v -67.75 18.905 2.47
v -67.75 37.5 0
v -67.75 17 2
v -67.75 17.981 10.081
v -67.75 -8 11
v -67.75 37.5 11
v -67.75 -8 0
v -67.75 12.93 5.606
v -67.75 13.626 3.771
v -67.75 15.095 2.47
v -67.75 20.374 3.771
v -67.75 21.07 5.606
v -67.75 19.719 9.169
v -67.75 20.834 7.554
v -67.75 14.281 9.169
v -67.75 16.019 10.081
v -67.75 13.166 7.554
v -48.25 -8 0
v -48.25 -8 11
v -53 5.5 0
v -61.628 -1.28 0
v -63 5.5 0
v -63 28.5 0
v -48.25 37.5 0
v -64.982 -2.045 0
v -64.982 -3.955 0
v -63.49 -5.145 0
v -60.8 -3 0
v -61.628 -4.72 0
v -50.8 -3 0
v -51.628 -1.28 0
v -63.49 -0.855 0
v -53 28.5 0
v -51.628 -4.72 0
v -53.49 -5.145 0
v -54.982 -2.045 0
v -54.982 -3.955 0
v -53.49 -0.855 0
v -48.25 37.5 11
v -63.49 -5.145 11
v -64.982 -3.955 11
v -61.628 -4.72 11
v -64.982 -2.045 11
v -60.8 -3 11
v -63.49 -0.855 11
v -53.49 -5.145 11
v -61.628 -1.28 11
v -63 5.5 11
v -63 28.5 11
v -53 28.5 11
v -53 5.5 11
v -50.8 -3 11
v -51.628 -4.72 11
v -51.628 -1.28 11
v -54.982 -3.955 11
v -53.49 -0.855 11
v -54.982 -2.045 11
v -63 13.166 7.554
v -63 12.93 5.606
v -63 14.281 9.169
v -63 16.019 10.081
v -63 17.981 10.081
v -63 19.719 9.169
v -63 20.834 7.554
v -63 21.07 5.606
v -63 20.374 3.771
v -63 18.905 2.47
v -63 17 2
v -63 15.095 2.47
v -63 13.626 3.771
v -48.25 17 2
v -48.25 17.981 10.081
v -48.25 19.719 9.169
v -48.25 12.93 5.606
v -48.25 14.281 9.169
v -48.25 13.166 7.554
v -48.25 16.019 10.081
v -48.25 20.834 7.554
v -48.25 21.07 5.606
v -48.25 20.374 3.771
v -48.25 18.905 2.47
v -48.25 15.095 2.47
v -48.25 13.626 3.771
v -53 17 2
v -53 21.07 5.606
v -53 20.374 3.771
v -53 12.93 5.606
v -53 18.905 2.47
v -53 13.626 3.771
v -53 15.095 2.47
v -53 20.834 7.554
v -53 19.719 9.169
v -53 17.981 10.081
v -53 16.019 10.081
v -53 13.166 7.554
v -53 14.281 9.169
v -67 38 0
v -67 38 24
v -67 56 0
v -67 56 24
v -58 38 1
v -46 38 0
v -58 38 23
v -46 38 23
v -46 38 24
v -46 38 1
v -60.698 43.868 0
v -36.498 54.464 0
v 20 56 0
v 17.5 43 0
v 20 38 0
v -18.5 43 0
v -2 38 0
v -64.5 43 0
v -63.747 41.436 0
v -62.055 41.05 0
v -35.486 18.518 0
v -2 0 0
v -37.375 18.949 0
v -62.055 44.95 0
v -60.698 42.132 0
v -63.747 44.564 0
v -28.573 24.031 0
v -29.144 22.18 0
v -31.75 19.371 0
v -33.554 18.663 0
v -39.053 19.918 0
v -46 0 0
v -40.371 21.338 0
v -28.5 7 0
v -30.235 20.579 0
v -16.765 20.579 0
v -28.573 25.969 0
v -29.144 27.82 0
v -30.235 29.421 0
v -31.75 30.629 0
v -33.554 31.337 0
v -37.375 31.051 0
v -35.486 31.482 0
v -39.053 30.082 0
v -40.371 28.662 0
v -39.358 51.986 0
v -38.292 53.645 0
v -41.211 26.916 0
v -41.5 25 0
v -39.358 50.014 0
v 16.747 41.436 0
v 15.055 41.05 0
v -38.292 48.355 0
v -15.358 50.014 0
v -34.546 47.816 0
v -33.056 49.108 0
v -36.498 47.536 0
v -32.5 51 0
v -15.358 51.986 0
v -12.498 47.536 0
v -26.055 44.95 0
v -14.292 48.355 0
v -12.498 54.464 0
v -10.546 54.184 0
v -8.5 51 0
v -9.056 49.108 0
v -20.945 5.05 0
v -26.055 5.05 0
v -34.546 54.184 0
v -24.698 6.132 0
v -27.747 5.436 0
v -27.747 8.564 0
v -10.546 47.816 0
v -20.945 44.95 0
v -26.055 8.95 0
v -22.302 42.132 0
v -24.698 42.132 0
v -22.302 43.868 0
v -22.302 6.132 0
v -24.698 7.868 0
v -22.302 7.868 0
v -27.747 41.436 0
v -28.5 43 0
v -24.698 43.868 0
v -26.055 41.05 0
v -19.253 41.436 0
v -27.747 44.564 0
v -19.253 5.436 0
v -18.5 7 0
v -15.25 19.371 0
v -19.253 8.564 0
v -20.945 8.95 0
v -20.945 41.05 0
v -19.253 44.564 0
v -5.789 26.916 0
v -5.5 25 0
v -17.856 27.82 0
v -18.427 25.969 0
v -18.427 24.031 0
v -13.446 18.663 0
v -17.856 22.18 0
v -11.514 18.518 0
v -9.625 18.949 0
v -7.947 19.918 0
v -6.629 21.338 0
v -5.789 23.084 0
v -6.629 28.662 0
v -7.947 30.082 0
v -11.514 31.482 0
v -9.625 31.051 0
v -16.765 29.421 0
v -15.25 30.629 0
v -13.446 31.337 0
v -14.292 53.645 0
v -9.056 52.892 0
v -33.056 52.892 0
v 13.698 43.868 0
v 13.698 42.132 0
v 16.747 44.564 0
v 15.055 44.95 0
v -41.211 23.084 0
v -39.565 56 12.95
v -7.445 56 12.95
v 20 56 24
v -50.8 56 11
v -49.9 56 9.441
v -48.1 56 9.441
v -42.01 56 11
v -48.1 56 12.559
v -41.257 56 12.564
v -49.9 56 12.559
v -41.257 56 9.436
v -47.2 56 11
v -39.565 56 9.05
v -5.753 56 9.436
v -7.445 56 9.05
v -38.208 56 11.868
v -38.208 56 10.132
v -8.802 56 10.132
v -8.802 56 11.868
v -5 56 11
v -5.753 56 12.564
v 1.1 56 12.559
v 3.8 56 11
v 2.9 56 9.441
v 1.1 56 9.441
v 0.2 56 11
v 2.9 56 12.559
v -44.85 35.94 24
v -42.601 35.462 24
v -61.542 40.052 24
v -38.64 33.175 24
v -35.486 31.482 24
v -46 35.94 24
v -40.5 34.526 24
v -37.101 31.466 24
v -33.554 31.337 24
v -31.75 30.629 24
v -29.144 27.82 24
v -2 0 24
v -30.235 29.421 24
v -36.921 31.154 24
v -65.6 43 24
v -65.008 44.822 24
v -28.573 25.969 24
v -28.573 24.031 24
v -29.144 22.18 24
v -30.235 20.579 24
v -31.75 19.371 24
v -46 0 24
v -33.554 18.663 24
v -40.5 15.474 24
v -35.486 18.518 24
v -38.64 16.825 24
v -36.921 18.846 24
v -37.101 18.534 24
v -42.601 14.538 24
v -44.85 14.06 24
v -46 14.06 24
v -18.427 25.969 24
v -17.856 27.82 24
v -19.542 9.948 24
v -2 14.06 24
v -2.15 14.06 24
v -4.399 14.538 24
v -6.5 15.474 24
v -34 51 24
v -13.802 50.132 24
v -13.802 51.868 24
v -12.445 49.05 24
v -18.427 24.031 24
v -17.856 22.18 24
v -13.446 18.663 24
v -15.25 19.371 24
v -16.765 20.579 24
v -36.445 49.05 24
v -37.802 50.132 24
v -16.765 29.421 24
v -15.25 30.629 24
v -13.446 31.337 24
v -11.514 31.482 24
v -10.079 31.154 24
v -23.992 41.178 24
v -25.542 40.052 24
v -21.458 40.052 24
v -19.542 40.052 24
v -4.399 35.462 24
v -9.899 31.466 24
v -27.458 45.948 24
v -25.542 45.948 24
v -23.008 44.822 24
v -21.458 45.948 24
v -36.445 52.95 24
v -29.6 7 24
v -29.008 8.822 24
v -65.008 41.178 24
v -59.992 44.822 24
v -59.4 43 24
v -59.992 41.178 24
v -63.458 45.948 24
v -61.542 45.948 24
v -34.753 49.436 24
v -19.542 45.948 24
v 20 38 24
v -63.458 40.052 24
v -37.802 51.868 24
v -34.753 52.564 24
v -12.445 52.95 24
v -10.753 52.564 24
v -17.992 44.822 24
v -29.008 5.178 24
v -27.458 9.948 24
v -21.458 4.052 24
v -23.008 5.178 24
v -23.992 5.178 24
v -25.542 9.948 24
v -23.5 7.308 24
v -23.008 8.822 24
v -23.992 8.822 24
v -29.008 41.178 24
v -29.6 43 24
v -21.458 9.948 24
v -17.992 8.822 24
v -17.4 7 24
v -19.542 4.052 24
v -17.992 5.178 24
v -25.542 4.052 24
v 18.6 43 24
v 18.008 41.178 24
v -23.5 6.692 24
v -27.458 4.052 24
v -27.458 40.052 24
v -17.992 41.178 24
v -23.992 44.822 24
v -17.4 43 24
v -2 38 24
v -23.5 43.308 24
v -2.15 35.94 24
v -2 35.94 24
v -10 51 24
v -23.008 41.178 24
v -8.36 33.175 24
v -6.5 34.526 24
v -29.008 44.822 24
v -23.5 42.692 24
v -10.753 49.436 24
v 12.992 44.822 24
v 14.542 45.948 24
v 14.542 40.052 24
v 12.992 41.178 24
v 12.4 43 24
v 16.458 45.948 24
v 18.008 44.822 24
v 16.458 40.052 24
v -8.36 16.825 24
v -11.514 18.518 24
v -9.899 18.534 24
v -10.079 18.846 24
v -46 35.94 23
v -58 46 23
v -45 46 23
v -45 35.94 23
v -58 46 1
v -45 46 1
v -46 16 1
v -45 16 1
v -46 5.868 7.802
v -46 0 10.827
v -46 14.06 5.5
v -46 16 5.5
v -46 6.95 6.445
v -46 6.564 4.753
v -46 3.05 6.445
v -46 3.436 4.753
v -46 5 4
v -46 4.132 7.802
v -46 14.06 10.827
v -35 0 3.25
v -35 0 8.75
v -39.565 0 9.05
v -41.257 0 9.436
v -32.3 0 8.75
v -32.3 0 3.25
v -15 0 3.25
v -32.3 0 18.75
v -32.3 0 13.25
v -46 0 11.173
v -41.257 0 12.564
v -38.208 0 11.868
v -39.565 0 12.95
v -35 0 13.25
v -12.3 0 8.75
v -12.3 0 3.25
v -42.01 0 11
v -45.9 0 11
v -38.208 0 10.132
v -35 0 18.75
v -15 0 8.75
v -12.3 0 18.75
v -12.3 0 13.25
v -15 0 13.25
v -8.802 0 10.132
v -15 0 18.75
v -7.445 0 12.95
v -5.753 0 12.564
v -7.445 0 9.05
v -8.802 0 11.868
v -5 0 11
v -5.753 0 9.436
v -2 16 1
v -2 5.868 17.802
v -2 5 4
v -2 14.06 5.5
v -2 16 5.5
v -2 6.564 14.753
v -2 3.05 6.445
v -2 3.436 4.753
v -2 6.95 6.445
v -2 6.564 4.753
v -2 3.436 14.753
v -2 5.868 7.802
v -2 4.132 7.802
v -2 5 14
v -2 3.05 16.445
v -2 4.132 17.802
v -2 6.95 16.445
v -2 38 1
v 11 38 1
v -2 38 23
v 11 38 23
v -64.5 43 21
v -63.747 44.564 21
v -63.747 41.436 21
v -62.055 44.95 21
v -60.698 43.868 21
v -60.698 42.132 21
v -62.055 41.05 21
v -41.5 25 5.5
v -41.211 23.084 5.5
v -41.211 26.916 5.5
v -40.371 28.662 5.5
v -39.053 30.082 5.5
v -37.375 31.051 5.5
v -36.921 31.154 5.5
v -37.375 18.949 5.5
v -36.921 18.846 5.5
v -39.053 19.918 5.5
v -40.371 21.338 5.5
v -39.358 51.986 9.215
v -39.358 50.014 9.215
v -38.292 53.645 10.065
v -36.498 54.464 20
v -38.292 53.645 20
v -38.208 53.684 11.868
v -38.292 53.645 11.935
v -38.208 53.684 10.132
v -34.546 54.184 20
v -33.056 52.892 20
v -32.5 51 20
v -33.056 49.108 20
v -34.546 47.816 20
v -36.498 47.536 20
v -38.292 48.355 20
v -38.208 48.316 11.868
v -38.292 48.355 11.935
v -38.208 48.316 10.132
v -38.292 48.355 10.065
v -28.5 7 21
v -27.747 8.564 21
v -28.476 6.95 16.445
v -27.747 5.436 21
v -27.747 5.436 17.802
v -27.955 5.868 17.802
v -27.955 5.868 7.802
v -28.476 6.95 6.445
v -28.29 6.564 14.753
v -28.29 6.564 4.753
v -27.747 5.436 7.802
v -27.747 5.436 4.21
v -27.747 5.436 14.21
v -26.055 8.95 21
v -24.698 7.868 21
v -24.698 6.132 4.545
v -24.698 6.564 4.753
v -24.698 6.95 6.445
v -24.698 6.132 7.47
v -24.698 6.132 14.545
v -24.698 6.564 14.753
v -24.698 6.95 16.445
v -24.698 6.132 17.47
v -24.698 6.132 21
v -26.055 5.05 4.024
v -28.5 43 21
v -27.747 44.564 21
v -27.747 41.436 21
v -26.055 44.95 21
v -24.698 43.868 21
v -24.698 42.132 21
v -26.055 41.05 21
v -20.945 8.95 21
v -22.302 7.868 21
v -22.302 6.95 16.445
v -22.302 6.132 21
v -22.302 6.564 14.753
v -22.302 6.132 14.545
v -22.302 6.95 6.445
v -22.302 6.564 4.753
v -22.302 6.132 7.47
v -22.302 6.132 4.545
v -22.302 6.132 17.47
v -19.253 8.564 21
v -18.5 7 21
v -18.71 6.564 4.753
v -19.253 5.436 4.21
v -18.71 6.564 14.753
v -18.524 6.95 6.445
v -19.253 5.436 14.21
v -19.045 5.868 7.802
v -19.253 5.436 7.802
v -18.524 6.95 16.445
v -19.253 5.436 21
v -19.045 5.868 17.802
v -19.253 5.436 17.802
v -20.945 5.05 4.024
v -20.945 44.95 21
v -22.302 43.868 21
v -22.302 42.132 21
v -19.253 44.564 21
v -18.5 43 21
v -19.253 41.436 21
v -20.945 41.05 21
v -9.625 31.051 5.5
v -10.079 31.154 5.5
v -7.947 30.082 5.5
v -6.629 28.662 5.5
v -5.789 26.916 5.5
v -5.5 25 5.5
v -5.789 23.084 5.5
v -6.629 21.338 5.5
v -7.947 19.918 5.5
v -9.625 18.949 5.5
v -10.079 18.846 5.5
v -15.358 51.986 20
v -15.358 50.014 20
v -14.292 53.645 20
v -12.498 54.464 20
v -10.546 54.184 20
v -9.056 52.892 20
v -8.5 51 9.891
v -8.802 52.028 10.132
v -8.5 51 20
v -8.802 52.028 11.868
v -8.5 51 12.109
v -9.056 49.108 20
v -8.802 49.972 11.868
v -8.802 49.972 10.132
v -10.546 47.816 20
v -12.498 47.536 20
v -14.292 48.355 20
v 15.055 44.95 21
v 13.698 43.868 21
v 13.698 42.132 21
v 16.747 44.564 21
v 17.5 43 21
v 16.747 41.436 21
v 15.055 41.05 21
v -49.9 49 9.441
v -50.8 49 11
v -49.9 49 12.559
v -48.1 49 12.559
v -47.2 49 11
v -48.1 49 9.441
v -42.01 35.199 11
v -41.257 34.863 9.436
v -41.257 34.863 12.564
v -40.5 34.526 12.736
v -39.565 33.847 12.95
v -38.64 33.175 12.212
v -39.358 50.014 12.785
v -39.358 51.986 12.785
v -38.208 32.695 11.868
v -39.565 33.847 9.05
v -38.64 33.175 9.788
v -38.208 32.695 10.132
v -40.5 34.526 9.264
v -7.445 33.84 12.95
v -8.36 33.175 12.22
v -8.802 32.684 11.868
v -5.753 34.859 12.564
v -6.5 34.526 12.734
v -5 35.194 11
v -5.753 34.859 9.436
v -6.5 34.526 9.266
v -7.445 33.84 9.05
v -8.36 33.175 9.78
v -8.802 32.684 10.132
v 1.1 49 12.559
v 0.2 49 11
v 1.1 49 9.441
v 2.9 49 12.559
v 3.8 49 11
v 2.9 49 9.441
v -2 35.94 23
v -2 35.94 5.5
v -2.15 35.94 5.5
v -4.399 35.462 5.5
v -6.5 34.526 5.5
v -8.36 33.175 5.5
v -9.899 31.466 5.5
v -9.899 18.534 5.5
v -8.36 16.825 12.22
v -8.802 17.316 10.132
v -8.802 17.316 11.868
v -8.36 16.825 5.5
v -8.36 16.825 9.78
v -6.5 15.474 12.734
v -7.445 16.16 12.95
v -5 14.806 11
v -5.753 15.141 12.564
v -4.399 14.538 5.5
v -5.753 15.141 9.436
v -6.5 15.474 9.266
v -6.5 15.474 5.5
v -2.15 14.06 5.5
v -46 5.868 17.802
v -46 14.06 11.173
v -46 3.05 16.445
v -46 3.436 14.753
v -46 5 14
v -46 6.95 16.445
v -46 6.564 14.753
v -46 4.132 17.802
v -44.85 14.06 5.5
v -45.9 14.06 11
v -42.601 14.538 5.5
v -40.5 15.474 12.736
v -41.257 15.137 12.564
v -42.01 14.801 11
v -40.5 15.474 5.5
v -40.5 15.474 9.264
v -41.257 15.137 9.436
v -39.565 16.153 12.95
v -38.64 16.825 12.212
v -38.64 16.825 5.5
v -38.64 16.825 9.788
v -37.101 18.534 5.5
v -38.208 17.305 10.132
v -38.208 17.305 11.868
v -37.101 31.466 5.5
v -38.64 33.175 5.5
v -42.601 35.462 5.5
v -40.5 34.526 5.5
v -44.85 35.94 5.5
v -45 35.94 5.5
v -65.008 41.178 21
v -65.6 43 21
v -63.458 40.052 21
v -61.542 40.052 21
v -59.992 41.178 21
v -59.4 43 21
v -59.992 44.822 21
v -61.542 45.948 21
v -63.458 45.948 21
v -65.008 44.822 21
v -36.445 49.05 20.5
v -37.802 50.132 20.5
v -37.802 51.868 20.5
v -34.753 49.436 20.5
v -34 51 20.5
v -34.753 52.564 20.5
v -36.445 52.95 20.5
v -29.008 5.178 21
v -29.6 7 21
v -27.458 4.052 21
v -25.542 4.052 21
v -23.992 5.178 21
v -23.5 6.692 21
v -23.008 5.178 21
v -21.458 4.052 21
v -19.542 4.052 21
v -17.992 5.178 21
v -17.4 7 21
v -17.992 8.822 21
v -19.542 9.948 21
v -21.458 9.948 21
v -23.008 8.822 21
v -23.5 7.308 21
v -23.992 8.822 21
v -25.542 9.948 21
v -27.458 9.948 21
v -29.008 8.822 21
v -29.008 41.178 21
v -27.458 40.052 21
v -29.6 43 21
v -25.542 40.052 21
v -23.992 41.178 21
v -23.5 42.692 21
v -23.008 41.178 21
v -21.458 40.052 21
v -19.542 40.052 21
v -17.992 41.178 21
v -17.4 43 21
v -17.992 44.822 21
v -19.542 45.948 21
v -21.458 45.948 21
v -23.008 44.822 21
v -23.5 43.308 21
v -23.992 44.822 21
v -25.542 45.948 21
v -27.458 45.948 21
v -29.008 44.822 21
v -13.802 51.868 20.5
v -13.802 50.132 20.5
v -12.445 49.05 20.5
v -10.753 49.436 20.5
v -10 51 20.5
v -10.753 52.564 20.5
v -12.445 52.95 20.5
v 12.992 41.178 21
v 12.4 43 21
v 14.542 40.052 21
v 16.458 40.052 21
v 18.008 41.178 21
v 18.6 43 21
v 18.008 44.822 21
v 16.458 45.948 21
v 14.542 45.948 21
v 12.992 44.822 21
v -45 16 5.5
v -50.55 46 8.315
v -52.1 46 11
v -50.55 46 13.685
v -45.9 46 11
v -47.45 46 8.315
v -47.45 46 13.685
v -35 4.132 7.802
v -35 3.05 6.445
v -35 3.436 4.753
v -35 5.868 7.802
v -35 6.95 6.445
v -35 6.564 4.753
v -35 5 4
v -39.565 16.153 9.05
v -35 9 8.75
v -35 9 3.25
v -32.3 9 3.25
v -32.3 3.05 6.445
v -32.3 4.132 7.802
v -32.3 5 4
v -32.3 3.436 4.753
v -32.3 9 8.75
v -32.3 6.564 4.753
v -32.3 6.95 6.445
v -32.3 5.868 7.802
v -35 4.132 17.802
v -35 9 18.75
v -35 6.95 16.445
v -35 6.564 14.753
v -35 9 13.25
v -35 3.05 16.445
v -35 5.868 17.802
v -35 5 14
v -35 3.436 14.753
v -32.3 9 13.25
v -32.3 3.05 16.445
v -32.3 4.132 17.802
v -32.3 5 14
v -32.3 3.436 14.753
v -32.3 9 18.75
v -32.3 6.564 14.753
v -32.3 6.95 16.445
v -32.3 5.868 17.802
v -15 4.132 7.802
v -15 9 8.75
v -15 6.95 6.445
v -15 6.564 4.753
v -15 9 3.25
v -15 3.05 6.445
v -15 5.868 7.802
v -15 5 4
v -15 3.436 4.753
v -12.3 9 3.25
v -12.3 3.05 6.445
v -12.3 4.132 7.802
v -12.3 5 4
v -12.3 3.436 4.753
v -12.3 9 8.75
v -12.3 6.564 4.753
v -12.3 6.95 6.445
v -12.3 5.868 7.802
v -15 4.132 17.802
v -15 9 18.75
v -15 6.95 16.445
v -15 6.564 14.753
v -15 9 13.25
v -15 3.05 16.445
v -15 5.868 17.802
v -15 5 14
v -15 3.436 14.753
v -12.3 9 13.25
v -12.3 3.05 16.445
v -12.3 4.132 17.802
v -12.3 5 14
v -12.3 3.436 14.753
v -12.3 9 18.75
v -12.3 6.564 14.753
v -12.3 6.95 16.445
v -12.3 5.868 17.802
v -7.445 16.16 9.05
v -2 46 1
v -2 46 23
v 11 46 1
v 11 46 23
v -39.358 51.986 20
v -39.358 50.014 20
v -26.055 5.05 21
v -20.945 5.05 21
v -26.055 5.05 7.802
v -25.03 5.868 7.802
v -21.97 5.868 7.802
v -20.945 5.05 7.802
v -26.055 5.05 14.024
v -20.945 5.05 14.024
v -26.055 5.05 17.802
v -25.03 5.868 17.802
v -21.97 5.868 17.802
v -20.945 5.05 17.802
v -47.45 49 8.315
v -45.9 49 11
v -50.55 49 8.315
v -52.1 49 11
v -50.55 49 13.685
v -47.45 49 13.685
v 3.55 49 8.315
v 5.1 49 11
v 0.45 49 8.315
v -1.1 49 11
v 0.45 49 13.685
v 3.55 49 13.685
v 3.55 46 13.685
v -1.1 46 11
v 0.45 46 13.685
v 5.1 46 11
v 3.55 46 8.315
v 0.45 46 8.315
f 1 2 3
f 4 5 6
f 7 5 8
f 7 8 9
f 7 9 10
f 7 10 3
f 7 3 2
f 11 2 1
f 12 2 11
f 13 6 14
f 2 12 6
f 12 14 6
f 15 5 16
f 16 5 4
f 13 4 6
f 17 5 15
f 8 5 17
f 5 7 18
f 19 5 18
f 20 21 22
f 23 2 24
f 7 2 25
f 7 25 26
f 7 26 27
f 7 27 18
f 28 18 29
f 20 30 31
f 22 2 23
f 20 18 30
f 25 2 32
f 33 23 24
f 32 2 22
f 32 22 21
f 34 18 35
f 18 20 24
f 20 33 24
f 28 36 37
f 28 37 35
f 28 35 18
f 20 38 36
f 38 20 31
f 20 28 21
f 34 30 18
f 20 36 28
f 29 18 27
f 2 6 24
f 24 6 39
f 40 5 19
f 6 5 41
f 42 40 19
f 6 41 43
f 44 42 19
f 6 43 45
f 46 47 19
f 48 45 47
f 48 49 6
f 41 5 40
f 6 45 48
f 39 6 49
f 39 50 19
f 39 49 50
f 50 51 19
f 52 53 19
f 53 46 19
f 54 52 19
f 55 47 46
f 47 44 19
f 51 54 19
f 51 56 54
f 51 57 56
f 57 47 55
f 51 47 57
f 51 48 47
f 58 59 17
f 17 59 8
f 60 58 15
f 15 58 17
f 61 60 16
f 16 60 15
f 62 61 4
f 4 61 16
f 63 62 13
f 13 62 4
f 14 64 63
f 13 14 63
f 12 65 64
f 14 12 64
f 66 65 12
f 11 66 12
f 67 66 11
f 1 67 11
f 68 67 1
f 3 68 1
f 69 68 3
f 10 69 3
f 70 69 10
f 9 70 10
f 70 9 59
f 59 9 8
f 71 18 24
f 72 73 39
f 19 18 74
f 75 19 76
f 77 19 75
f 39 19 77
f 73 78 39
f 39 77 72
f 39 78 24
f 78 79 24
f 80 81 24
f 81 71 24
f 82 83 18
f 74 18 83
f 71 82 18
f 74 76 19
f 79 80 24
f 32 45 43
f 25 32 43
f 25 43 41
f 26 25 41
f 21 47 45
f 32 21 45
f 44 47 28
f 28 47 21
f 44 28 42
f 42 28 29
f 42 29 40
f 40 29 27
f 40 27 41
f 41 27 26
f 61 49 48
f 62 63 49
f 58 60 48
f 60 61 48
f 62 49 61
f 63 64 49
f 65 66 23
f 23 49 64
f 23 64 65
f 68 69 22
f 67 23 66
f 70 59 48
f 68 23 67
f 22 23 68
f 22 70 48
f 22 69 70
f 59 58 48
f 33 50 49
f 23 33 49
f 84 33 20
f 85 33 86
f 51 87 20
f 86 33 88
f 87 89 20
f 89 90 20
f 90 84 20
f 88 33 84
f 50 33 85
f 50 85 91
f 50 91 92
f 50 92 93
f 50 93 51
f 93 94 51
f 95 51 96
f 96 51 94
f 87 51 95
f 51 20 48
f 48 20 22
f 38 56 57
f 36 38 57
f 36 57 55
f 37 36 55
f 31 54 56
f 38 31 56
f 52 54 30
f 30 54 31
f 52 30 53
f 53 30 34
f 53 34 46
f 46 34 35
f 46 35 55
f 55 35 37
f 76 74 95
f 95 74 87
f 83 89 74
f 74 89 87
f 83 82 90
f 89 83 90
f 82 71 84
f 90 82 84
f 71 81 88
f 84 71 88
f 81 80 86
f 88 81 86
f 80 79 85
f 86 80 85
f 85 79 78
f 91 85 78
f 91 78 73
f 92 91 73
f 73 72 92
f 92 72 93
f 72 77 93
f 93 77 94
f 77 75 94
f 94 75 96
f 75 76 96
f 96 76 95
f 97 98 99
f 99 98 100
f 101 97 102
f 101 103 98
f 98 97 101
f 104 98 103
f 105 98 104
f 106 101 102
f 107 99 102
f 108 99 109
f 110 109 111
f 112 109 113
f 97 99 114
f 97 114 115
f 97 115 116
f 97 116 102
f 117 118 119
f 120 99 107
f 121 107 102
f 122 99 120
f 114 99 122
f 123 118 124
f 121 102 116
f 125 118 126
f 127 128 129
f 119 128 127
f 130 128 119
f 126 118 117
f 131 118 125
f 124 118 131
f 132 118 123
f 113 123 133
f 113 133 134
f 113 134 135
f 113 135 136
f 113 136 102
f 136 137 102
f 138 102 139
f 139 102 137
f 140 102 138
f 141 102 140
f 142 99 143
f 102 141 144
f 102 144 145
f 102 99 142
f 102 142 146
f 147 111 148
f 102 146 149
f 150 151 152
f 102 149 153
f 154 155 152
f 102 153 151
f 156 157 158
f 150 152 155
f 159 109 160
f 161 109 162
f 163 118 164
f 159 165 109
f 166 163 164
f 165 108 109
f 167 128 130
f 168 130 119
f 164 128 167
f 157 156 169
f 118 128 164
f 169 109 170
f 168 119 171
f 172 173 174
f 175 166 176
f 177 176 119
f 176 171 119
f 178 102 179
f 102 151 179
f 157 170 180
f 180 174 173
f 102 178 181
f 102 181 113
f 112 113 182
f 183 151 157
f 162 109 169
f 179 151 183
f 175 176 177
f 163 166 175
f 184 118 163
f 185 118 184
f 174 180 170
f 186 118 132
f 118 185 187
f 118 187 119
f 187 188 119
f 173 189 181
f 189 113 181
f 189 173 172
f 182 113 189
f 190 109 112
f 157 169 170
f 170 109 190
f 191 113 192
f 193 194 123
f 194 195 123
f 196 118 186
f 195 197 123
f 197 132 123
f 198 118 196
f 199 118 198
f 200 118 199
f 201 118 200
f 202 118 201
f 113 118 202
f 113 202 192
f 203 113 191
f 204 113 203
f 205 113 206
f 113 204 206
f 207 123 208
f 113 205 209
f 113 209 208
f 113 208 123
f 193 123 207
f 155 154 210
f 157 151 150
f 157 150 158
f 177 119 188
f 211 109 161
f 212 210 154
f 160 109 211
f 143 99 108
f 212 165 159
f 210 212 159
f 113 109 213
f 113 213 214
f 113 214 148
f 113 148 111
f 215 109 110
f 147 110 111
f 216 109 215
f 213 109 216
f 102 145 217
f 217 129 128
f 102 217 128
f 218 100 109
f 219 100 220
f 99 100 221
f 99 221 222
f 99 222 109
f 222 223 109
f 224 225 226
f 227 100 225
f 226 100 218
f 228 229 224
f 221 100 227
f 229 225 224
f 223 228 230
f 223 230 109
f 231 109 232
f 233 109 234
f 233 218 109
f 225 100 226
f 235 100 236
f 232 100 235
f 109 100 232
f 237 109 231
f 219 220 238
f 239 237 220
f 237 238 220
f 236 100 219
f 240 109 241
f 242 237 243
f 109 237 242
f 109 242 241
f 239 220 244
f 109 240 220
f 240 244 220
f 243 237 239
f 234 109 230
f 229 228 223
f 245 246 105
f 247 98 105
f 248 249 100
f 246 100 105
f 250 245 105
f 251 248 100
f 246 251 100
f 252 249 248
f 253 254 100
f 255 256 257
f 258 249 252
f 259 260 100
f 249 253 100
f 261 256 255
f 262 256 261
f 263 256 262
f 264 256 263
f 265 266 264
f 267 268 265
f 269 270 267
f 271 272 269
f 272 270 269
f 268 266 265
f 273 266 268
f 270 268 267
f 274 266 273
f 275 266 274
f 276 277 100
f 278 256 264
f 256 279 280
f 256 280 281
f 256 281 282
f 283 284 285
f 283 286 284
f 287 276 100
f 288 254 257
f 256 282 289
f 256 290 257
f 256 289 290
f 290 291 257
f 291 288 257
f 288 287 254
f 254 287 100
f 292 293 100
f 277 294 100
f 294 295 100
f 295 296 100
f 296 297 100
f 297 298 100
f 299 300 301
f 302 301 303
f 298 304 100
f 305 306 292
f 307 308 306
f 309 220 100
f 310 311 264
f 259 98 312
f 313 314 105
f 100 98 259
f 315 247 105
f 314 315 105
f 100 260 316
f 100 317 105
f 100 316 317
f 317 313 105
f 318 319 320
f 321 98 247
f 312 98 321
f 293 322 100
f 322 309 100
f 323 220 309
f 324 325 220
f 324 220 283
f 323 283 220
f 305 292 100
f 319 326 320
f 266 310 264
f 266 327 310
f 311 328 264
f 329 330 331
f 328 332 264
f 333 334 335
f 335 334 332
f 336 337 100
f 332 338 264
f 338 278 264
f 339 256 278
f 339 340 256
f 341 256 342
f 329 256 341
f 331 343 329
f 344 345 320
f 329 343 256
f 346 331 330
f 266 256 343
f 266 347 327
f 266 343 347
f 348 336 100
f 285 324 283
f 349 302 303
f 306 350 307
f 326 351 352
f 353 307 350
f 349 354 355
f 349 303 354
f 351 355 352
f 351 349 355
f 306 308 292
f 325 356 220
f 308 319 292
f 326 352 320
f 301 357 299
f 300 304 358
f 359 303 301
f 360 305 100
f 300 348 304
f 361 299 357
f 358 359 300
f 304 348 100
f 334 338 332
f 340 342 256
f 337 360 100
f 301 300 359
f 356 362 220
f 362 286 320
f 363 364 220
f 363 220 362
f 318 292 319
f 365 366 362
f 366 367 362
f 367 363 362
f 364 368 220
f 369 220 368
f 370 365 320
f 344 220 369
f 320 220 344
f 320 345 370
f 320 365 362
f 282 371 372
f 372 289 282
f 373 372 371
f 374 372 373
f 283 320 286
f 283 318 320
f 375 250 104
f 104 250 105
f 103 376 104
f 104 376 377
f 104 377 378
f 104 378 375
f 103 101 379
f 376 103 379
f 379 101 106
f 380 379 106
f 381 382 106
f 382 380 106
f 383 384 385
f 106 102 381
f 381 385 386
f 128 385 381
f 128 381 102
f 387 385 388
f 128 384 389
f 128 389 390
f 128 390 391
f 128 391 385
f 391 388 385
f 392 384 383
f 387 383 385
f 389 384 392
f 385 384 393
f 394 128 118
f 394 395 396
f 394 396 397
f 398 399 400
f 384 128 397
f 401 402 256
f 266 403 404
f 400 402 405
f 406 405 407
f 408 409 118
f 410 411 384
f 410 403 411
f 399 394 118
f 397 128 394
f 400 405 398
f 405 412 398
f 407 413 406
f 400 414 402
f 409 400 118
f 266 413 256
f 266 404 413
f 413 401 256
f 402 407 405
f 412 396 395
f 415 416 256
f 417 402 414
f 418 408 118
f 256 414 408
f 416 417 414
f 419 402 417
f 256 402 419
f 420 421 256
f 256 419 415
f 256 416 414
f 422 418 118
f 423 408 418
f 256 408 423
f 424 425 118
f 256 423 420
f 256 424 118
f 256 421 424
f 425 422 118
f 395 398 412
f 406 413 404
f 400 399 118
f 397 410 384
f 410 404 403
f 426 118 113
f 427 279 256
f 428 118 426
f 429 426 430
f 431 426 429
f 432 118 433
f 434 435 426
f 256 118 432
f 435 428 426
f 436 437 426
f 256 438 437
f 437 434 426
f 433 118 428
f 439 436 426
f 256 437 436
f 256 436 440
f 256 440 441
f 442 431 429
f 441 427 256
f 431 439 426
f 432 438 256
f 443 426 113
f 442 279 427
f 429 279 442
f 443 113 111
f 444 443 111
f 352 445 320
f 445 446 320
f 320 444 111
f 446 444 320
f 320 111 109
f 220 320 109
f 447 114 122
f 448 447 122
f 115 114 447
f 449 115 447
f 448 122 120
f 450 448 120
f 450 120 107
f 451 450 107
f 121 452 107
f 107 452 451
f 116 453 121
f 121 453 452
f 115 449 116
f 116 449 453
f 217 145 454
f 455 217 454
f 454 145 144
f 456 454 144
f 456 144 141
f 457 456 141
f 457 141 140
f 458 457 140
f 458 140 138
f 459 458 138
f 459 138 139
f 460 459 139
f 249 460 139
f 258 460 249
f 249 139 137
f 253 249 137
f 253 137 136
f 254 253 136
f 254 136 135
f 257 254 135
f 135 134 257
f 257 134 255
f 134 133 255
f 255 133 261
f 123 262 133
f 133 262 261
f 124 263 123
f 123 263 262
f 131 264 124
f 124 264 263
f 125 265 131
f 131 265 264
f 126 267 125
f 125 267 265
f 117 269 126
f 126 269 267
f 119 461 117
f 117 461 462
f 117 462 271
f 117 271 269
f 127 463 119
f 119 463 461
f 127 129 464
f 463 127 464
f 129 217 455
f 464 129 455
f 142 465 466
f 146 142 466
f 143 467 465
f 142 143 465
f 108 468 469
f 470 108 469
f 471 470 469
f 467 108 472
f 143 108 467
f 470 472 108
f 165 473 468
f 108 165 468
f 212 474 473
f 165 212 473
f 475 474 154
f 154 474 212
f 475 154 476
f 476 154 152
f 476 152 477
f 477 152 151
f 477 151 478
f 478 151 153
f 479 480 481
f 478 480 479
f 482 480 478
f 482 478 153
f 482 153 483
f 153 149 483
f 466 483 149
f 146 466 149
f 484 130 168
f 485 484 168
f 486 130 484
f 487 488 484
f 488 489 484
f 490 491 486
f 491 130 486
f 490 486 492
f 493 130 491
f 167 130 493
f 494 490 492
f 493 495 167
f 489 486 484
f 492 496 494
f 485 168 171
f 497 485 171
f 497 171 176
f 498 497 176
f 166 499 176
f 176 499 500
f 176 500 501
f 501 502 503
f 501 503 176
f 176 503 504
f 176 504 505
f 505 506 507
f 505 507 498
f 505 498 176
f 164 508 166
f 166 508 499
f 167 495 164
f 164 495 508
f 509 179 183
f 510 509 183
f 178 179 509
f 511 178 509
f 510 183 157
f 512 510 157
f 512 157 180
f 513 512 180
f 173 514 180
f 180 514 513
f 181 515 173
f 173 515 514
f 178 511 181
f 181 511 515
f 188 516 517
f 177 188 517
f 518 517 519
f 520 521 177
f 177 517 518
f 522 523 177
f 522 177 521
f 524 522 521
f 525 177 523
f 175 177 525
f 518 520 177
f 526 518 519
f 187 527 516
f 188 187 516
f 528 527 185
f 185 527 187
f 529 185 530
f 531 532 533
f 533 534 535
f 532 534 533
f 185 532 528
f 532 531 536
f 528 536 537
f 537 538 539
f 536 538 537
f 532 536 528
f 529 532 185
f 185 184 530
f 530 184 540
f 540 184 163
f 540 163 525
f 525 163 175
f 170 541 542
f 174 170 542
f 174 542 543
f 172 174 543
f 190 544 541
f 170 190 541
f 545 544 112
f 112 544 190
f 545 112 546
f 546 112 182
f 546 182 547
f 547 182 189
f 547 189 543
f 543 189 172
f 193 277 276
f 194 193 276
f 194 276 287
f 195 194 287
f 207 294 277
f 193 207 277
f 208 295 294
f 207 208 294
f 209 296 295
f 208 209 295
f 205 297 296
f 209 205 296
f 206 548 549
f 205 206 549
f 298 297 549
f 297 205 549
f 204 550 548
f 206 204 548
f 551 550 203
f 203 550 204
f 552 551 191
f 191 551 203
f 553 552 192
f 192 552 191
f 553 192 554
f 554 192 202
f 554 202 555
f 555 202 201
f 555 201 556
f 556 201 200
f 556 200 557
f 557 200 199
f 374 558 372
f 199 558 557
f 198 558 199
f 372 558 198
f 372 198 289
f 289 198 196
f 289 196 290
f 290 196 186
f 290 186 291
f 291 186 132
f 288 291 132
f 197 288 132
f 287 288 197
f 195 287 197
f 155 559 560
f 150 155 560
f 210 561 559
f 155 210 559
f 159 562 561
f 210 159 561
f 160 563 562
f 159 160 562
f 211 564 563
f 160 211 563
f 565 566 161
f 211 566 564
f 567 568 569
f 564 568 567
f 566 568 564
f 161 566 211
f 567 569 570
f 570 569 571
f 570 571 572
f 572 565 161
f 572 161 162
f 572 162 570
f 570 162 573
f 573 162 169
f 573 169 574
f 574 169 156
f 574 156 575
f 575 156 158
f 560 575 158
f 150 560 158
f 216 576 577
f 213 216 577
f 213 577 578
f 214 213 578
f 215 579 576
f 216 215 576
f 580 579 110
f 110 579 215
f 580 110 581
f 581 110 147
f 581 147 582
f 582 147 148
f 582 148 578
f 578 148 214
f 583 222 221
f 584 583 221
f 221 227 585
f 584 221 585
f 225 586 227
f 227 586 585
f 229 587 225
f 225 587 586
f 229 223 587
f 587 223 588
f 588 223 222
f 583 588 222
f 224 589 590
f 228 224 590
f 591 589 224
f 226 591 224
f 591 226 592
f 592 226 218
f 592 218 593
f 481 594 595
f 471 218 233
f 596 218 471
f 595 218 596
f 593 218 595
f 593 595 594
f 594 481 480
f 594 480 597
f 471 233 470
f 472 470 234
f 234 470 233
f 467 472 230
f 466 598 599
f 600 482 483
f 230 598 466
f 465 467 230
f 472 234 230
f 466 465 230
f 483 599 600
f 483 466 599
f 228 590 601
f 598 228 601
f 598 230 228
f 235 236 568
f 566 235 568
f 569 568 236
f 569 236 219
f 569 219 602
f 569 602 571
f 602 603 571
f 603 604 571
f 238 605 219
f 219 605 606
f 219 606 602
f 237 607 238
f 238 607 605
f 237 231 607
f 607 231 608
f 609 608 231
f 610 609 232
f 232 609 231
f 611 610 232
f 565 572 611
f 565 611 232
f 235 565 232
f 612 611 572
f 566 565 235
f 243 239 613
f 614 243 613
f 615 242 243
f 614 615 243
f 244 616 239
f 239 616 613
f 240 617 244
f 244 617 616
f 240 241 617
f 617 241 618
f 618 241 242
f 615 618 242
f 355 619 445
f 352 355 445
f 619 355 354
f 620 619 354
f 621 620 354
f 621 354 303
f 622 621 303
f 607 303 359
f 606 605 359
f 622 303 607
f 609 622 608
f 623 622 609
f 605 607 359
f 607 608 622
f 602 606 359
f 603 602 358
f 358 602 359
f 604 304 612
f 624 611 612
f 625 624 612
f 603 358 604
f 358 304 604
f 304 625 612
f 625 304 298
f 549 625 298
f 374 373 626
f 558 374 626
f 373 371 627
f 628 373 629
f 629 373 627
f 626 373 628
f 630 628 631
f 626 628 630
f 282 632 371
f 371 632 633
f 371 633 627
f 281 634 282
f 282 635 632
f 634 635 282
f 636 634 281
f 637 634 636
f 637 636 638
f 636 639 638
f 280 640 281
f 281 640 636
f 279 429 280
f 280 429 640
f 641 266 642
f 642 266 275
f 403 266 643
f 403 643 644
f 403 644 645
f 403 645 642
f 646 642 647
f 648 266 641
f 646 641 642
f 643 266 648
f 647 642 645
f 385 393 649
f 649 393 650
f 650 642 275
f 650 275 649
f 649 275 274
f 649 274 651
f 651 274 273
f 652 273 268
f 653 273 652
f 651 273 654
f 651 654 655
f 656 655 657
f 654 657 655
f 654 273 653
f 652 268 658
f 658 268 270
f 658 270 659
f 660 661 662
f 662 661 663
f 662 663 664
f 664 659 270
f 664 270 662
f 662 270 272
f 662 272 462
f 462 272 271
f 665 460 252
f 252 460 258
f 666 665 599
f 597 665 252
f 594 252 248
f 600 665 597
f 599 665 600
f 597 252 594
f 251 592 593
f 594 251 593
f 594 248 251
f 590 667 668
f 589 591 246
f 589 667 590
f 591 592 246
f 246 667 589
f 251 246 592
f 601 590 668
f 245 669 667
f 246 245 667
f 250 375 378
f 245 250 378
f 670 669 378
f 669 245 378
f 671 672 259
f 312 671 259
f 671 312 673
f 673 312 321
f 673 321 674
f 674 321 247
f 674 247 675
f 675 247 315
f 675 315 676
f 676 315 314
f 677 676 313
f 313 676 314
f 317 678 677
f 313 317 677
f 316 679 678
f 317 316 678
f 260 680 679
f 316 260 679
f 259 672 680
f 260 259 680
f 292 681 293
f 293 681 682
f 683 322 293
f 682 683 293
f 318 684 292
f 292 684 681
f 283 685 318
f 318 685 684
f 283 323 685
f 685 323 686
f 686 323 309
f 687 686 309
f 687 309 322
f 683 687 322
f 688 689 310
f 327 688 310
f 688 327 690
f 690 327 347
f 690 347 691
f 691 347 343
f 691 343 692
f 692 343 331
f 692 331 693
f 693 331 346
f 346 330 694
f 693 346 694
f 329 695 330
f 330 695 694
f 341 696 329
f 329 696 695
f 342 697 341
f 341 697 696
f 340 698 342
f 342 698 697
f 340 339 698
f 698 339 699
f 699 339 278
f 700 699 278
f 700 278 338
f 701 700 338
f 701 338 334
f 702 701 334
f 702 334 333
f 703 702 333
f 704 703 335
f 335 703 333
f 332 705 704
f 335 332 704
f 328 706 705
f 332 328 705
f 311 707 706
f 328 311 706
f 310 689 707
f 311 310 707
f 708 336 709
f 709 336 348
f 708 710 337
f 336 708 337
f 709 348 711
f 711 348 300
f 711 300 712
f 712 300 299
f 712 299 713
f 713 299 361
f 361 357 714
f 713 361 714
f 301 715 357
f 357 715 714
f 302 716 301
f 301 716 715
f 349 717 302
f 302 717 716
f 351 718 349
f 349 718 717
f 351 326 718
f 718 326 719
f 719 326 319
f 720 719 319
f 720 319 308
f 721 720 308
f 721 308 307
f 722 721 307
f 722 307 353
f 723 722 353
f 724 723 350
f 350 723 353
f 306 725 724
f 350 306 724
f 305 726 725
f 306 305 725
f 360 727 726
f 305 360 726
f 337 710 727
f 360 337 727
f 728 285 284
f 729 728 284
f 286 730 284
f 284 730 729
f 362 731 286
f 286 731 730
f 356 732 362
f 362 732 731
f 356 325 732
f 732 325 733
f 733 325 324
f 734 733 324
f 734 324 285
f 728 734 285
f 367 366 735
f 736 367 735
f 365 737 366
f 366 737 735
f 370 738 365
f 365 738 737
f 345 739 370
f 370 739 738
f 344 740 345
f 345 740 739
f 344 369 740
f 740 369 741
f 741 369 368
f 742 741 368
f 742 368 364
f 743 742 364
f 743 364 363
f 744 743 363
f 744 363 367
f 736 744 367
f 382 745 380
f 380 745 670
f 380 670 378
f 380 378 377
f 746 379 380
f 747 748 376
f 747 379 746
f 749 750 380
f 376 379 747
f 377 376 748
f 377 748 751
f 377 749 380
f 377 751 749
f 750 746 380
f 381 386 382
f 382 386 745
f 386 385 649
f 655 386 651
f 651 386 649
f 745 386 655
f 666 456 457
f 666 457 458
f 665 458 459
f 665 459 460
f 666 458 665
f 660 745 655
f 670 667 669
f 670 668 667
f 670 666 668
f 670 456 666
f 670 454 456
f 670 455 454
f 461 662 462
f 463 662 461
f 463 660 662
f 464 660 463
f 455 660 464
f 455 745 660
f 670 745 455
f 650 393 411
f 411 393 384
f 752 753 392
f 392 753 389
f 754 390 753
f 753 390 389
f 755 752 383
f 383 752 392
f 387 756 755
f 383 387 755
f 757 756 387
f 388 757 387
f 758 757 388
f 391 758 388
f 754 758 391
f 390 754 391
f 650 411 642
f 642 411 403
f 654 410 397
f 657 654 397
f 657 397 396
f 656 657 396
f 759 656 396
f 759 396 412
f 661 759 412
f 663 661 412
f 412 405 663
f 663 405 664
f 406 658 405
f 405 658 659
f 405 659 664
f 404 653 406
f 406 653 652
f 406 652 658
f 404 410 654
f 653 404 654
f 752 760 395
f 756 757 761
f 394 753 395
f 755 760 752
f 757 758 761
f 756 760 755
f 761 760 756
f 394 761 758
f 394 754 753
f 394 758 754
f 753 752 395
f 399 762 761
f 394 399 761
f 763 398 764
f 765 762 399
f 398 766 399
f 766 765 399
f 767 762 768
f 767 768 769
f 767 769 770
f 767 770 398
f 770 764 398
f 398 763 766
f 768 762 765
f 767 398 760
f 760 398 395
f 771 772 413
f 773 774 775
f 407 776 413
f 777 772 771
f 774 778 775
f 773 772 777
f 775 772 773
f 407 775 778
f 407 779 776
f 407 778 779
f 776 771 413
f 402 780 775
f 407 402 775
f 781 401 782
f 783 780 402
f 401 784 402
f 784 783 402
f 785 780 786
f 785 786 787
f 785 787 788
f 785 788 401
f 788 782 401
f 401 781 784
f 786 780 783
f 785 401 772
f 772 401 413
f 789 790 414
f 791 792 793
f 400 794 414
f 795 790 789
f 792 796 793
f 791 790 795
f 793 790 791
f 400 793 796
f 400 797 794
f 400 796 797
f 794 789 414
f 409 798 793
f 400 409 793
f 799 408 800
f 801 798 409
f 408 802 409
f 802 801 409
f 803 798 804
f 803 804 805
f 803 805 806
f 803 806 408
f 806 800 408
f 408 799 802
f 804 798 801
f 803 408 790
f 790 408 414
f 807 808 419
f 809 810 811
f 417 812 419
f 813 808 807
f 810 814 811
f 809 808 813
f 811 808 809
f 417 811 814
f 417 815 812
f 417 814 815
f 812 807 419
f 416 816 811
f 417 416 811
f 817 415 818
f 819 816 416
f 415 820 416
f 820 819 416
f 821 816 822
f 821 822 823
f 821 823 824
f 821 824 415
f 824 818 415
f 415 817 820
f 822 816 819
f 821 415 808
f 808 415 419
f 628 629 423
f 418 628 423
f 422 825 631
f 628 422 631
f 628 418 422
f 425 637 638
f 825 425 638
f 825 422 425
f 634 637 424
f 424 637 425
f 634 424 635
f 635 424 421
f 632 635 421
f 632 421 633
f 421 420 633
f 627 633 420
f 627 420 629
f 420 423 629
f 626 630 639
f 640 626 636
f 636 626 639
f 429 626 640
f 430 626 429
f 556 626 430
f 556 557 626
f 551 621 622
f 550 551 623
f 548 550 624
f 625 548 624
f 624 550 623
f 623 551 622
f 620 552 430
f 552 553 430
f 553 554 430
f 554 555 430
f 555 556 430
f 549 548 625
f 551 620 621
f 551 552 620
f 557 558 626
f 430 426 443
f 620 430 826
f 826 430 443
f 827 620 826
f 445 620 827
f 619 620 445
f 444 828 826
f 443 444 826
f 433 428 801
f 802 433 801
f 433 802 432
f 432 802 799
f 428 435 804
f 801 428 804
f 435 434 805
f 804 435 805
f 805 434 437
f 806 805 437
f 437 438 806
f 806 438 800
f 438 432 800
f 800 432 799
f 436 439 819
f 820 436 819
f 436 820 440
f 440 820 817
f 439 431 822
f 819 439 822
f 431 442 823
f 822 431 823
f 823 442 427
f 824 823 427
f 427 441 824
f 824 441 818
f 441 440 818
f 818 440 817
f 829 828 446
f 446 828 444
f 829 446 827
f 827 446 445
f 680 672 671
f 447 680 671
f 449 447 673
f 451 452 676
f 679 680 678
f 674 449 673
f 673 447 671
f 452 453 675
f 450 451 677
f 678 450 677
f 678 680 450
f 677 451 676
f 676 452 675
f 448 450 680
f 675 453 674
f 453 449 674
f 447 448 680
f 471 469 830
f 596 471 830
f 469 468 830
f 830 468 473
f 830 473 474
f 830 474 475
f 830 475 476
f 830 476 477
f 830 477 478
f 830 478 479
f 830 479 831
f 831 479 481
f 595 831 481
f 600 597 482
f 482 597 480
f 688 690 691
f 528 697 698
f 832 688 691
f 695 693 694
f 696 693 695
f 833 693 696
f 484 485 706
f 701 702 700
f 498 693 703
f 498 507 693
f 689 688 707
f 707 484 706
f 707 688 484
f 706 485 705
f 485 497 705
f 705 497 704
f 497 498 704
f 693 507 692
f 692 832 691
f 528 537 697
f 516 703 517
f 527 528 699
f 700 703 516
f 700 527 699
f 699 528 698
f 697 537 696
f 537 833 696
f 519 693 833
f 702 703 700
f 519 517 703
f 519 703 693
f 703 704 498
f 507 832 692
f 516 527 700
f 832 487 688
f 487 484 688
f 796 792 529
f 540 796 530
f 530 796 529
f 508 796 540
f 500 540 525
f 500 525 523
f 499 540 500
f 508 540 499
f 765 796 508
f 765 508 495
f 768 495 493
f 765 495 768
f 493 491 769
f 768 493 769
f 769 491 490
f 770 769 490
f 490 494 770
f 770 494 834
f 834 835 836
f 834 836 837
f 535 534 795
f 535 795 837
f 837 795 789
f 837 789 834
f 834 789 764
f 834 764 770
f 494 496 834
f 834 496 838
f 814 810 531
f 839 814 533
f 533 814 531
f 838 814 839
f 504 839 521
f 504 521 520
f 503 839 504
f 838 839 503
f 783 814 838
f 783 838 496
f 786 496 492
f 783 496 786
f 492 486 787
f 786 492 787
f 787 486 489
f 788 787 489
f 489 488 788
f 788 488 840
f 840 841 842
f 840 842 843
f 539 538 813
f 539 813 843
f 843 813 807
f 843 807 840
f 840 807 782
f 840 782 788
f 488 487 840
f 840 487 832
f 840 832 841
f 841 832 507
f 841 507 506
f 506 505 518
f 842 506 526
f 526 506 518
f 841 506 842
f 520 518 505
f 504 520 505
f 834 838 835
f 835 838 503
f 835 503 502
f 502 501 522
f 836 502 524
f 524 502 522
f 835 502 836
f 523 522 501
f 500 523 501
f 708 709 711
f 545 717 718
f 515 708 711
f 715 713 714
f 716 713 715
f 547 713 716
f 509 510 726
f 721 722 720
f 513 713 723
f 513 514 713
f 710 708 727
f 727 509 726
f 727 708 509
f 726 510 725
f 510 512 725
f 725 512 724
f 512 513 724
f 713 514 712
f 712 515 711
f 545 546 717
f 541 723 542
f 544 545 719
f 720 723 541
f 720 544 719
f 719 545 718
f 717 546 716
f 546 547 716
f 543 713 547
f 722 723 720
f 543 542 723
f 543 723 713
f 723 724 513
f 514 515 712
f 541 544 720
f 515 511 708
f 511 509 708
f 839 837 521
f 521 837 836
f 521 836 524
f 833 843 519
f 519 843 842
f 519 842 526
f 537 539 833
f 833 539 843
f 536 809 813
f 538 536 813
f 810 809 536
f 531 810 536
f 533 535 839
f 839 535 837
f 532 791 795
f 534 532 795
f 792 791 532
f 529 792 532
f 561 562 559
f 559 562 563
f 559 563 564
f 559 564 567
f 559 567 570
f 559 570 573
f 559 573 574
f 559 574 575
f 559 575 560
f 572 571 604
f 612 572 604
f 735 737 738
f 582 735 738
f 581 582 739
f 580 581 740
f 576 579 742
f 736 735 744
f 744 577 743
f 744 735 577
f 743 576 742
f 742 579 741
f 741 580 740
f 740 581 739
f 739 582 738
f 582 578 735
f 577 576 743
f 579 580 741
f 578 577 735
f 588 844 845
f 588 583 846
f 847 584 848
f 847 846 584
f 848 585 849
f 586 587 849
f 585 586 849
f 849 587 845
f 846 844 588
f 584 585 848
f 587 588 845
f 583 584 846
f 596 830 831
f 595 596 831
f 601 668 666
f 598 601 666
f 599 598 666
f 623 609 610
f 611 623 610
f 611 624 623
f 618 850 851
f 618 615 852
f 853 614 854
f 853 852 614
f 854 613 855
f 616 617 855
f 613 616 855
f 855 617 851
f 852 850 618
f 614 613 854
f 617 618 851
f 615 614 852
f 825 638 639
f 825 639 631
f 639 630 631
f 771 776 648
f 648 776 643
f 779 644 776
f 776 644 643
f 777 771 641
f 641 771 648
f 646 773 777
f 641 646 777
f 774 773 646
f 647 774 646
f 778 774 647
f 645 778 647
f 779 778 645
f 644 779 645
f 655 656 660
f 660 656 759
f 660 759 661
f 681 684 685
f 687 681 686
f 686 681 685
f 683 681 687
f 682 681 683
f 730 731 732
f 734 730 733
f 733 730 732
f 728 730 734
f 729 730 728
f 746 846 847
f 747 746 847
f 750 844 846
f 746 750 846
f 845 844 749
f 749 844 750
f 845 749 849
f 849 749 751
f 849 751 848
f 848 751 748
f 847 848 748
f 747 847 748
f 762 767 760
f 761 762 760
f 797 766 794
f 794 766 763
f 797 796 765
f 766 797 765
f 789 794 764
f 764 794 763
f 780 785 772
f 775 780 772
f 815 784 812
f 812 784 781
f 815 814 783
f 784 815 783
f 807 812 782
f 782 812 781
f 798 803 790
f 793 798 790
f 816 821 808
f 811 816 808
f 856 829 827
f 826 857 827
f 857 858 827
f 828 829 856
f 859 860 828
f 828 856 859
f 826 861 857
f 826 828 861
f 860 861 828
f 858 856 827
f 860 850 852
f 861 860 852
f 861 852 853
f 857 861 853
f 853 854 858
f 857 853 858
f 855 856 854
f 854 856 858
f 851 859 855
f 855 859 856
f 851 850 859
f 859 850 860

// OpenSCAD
// PRUSA iteration3
// Compact extruder
// GNU GPL v3
// Josef Průša <iam@josefprusa.cz> and contributors
// http://www.reprap.org/wiki/Prusa_Mendel
// http://prusamendel.org




module motor_dummy(){
	translate([-22,-22,-5]) %cube([44,44,5]);
	translate([18,18,-5]) %cylinder(r=2, h=24);
	translate([18,-18,-5]) %cylinder(r=2, h=24);
	translate([-18,18,-5]) %cylinder(r=2, h=24);
	translate([-18,-18,-5]) %cylinder(r=2, h=24);
	translate([-22+2.5+10,0,-5]) %cylinder(r=2.5, h=7);
	
}

module extruder_base(){
 // Main body
 translate([-1-22,-2,0]) cube([22+22,56,24]);
 // Extruder plate mount
 translate([-16-28,49-5-8,0]) cube([59+28,18,24]);
 // Carriage mount cylinders
 translate([11,25,0]){
  //translate([-12,24,0]) cylinder(r=5, h=24);
  //translate([12,24,0]) cylinder(r=5, h=24);
 }
}

module extruder_holes(){
 // 1st extruder
 translate([11,25,0]){ // Translate to center of the main block
  // Main shaft opening
  translate([0,-2,-1]) cylinder(r=6.5, h=26);

  // Lower motor mount hole
  translate([-8.5,18-2,-1]) cylinder(r=2, h=35);
  translate([-8.5,18-2,21]) cylinder(r=3.1, h=35);
  // Upper motor mount hole
  translate([-8.5,-18-2,-1]) cylinder(r=2, h=35);
  translate([-8.5,-18-2,21]) cylinder(r=3.1, h=35);
  // Idler motor mount hole
  translate([-8.5+36,18-2,-1]) cylinder(r=2, h=35);
  translate([-8.5+36,18-2,21]) cylinder(r=3.1, h=35);

  //Idler place
  
  translate([10,-11,1]) cube([13,30,22]);

  // Carriage mount right screw head hole
  translate([-12-12,24,-3]) cylinder(r=3.5, h=23);
  // Carriage mount left screw head hole
  translate([12-12,24,-3]) cylinder(r=3.5, h=23);
  // Carriage mount right screw hole
  translate([-12-12,24,20.5]) cylinder(r=2, h=23);
  // Carriage mount left screw head hole
  translate([12-12,24,20.5]) cylinder(r=2, h=23);
  // Idler bearing cutout
  translate([11,0-2,-4.5+10]) cylinder(r=11, h=20);
 }

 // Filament path
 translate([1.5+11+3.5,65,11]) rotate([90,0,0]) cylinder(r=2, h=70);

 mirror([1,0,0])translate([1.5+11+3.51+1,65,11]) rotate([90,0,0]) cylinder(r=2, h=70);

 // 2nd extruder
 translate([-1,0,0]) mirror([1,0,0]) translate([11,25,0]){ // Translate to center of the main block
  // Main shaft opening
  translate([0,-2,-1]) cylinder(r=6.5, h=26);

  // Lower motor mount hole
  translate([-8.5,18-2,-1]) cylinder(r=2, h=35);
  translate([-8.5,18-2,21]) cylinder(r=3.1, h=35);
  // Upper motor mount hole
  translate([-8.5,-18-2,-1]) cylinder(r=2, h=35);
  translate([-8.5,-18-2,21]) cylinder(r=3.1, h=35);
  // Idler motor mount hole
  translate([-8.5+36,18-2,-1]) cylinder(r=2, h=35);
  translate([-8.5+36,18-2,21]) cylinder(r=3.1, h=35);

  translate([10,-11,1]) cube([13,30,22]);
  
  // Idler bearing cutout
  translate([11,0-2,-4.5+10]) cylinder(r=11, h=20);
 }
 

 // Left extruder plate mounting hole
 translate([25,65,11]) rotate([90,0,0]) cylinder(r=1.8, h=70);
 translate([25,47,11]) rotate([90,0,0]) cylinder(r=3.1, h=70, $fn=6);
 // Right extruder plate mounting hole

 translate([-26,65,11]) rotate([90,0,0]) cylinder(r=1.8, h=70);
 translate([-26,47,11]) rotate([90,0,0]) cylinder(r=3.1, h=70, $fn=6);

  // Idler mounting holse
  translate([11,25,10]){
   // Nut traps
   translate([-3,-32,6-5.5/2]) cube([2.7,14,5.5]);
   translate([-3,-32,-4-5.5/2]) cube([2.7,14,5.5]);

   translate([-3-20,-32,6-5.5/2]) cube([2.7,14,5.5]);
   translate([-3-20,-32,-4-5.5/2]) cube([2.7,14,5.5]);
   // Screws
   translate([-50,-22,-4]) rotate([0,90,0]) cylinder(r=2, h=80);
   translate([-50,-22,6]) rotate([0,90,0]) cylinder(r=2, h=80);
	}
}

module extruder_idler_base(){
 translate([0.25,0,0]) cube([19.5,45.5,8+3]);
	
}

module extruder_idler_holes(){
 translate([10,25,0]){
  // Main cutout
  cube([10,23,25], center= true);
  // Idler shaft
  translate([-12,0,4.1+2])rotate([0,90,0])cylinder(r=4.1, h=24);
  // Screw holes
  translate([5,-20,-1])cylinder(r=2.2, h=24);
  translate([-5,-20,-1])cylinder(r=2.2, h=24);
 }
}


// Idler final part
module idler(){
 difference(){
  extruder_idler_base();
  extruder_idler_holes();
 }
}

//translate([10,0,1]) rotate([0,-90,0]) idler();
translate([-68,-8,0])  idler();
// Extruder final part
module extruder(){
 translate([-23,2,0])difference(){
  extruder_base();
  extruder_holes();
 }
}

extruder();
translate([-2.5,25,0]) motor_dummy();
